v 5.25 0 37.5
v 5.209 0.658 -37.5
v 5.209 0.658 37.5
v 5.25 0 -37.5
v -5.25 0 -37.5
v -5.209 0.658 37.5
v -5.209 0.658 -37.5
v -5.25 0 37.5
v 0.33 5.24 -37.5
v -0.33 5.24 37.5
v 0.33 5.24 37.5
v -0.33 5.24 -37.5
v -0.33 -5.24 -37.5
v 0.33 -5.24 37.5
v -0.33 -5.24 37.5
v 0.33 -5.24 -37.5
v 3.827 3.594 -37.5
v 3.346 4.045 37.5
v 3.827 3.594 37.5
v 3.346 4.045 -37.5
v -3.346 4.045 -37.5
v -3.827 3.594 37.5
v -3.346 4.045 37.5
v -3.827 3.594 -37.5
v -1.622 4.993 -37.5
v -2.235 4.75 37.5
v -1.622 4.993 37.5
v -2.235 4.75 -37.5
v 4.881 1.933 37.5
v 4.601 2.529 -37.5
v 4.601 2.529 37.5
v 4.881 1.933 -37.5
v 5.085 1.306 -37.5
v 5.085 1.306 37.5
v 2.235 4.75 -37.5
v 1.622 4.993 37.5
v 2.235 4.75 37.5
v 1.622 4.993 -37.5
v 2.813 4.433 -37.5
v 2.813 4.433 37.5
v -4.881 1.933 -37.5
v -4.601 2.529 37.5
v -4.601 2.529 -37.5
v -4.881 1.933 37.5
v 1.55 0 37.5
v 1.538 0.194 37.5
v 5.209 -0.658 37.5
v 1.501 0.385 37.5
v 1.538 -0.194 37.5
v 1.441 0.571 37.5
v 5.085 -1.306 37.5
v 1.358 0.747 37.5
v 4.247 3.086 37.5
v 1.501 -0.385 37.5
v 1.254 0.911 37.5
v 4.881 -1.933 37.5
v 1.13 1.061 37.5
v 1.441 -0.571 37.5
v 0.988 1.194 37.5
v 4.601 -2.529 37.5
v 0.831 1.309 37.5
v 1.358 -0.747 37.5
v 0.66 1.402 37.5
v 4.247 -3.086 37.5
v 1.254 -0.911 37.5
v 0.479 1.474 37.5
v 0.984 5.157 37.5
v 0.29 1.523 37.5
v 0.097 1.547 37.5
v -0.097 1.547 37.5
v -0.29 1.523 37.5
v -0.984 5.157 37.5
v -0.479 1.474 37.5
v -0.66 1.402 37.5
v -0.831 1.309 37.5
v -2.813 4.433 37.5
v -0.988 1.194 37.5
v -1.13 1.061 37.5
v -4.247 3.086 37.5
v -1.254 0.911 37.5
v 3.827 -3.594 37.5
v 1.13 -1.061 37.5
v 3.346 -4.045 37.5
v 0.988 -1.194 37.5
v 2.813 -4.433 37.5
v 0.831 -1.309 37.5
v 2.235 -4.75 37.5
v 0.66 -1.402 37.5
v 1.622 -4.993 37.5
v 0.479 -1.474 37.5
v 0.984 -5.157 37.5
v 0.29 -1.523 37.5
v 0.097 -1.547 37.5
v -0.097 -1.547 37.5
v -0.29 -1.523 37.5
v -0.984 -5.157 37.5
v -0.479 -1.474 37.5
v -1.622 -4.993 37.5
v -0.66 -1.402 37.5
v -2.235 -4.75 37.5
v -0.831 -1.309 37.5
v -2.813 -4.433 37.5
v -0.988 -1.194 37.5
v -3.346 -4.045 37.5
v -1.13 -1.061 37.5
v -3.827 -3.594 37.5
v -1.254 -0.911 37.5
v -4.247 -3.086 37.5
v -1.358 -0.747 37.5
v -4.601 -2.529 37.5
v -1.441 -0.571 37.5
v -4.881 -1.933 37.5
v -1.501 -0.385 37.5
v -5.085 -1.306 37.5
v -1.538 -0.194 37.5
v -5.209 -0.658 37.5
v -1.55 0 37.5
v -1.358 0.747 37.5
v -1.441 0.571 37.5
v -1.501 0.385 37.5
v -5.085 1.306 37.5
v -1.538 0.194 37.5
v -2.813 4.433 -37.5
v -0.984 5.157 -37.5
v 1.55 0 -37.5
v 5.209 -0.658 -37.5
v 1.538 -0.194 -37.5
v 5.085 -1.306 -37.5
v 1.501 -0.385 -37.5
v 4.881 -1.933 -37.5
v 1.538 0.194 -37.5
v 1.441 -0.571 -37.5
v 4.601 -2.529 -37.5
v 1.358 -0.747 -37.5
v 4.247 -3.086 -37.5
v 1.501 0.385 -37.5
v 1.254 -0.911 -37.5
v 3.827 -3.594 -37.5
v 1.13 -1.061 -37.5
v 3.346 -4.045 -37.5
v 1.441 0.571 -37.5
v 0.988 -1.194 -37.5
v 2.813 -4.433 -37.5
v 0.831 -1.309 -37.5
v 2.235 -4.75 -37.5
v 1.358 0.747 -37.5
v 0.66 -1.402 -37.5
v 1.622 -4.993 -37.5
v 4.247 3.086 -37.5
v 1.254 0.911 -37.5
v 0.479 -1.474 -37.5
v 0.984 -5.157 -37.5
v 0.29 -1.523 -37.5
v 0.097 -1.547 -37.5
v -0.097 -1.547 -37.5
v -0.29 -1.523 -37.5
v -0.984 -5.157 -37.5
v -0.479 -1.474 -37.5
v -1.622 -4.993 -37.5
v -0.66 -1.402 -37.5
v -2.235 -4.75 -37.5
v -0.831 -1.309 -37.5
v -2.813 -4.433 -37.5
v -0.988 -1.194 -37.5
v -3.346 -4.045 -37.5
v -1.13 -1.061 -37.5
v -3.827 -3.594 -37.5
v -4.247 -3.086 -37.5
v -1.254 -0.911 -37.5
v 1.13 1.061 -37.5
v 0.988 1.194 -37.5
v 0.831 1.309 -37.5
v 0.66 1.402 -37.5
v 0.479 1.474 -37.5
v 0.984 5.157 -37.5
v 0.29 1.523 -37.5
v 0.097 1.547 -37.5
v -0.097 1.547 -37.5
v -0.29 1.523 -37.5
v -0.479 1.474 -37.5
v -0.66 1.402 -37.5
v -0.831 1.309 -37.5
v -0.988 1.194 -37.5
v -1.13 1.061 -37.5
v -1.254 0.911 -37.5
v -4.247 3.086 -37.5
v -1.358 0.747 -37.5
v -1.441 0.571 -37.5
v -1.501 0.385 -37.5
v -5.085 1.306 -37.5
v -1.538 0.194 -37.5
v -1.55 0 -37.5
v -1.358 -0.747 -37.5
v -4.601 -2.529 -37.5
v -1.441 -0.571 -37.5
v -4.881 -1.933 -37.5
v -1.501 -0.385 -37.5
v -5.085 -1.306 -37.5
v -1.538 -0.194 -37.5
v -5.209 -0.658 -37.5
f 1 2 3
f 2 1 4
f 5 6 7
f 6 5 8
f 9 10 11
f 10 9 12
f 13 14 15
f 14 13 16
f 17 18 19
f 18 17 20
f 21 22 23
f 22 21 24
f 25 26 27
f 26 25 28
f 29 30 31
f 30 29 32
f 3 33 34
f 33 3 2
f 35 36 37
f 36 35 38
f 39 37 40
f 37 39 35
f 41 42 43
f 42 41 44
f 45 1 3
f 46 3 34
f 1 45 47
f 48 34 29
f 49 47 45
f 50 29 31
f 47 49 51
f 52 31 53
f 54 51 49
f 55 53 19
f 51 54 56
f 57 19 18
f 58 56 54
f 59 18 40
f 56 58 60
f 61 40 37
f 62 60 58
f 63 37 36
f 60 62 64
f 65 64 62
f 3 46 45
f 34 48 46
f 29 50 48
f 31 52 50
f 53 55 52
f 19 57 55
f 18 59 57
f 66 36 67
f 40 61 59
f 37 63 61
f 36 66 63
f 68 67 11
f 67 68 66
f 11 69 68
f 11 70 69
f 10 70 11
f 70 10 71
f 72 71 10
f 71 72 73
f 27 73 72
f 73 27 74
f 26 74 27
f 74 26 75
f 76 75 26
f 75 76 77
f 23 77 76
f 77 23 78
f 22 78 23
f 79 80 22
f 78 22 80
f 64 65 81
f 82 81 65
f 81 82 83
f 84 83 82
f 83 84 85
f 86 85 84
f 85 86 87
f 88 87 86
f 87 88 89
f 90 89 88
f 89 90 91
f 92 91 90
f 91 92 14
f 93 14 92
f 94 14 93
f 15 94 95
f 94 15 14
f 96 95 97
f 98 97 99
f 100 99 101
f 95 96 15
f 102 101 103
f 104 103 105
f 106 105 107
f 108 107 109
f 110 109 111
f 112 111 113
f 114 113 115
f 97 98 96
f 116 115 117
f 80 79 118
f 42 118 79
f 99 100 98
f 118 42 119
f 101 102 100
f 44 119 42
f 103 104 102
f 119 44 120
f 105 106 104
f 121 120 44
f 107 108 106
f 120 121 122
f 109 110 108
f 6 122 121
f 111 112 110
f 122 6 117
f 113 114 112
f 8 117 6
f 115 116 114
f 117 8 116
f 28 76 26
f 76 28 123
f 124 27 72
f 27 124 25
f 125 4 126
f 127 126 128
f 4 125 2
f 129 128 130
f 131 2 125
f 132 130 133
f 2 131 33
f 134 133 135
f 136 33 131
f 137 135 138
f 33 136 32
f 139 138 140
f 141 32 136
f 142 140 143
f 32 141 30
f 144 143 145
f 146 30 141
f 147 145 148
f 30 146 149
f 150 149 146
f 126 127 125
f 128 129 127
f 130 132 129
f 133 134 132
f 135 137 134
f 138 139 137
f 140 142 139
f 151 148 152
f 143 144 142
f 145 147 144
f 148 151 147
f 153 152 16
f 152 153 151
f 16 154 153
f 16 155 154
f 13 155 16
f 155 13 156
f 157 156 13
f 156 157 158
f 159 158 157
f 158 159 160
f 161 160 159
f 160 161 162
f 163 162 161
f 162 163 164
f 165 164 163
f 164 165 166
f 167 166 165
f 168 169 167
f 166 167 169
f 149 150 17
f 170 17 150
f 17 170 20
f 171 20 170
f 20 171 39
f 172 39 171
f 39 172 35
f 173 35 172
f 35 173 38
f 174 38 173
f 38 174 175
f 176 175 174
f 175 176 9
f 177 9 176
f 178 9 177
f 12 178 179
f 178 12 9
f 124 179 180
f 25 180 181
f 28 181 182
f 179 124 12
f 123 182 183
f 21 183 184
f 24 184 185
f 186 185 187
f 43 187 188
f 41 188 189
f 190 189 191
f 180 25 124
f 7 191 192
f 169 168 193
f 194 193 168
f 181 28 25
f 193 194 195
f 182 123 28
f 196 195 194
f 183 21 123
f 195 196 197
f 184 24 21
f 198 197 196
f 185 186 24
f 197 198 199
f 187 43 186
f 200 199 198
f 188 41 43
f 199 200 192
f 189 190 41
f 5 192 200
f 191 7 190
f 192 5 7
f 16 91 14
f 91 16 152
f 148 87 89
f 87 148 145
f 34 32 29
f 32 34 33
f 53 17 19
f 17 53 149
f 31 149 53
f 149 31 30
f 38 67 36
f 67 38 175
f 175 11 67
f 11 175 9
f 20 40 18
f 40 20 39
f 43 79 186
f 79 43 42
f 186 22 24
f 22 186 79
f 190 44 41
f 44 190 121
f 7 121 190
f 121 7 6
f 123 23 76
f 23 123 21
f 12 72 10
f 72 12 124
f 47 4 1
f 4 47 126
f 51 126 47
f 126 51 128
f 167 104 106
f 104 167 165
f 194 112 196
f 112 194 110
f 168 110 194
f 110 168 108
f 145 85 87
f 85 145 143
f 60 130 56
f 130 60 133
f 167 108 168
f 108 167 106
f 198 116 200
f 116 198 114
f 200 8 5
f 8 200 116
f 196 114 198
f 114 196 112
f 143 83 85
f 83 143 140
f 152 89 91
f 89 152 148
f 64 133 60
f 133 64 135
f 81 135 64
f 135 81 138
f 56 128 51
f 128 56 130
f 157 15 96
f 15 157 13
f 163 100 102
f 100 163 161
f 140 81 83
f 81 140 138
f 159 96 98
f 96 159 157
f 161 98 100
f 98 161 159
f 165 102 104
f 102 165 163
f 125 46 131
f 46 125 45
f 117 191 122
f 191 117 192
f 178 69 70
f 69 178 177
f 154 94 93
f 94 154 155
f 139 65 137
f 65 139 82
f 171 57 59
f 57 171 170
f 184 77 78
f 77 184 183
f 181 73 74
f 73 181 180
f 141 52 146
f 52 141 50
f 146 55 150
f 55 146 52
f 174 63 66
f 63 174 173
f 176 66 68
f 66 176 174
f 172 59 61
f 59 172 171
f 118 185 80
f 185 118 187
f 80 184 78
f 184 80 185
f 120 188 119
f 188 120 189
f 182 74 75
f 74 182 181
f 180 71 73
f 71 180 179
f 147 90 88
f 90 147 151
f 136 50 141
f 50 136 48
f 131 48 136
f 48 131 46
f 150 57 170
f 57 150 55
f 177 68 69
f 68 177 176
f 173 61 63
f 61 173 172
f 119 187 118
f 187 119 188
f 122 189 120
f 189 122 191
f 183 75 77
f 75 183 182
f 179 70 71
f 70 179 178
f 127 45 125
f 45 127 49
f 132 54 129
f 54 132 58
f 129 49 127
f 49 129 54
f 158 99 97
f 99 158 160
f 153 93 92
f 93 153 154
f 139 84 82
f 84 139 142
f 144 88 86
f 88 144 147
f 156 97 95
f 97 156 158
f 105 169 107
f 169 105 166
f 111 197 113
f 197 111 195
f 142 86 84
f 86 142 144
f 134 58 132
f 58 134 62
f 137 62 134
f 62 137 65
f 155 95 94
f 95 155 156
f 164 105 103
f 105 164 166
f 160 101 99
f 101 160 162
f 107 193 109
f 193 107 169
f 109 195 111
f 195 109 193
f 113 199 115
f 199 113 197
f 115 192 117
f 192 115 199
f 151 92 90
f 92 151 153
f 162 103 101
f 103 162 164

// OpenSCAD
$fn = 50;


difference() {
	union() {
		translate(v = [0, 0, -37.5000000000]) {
			cylinder(h = 75, r = 5.2500000000);
		}
	}
	union() {
		translate(v = [0, 0, -100.0000000000]) {
			cylinder(h = 200, r = 1.5500000000);
		}
	}
}
